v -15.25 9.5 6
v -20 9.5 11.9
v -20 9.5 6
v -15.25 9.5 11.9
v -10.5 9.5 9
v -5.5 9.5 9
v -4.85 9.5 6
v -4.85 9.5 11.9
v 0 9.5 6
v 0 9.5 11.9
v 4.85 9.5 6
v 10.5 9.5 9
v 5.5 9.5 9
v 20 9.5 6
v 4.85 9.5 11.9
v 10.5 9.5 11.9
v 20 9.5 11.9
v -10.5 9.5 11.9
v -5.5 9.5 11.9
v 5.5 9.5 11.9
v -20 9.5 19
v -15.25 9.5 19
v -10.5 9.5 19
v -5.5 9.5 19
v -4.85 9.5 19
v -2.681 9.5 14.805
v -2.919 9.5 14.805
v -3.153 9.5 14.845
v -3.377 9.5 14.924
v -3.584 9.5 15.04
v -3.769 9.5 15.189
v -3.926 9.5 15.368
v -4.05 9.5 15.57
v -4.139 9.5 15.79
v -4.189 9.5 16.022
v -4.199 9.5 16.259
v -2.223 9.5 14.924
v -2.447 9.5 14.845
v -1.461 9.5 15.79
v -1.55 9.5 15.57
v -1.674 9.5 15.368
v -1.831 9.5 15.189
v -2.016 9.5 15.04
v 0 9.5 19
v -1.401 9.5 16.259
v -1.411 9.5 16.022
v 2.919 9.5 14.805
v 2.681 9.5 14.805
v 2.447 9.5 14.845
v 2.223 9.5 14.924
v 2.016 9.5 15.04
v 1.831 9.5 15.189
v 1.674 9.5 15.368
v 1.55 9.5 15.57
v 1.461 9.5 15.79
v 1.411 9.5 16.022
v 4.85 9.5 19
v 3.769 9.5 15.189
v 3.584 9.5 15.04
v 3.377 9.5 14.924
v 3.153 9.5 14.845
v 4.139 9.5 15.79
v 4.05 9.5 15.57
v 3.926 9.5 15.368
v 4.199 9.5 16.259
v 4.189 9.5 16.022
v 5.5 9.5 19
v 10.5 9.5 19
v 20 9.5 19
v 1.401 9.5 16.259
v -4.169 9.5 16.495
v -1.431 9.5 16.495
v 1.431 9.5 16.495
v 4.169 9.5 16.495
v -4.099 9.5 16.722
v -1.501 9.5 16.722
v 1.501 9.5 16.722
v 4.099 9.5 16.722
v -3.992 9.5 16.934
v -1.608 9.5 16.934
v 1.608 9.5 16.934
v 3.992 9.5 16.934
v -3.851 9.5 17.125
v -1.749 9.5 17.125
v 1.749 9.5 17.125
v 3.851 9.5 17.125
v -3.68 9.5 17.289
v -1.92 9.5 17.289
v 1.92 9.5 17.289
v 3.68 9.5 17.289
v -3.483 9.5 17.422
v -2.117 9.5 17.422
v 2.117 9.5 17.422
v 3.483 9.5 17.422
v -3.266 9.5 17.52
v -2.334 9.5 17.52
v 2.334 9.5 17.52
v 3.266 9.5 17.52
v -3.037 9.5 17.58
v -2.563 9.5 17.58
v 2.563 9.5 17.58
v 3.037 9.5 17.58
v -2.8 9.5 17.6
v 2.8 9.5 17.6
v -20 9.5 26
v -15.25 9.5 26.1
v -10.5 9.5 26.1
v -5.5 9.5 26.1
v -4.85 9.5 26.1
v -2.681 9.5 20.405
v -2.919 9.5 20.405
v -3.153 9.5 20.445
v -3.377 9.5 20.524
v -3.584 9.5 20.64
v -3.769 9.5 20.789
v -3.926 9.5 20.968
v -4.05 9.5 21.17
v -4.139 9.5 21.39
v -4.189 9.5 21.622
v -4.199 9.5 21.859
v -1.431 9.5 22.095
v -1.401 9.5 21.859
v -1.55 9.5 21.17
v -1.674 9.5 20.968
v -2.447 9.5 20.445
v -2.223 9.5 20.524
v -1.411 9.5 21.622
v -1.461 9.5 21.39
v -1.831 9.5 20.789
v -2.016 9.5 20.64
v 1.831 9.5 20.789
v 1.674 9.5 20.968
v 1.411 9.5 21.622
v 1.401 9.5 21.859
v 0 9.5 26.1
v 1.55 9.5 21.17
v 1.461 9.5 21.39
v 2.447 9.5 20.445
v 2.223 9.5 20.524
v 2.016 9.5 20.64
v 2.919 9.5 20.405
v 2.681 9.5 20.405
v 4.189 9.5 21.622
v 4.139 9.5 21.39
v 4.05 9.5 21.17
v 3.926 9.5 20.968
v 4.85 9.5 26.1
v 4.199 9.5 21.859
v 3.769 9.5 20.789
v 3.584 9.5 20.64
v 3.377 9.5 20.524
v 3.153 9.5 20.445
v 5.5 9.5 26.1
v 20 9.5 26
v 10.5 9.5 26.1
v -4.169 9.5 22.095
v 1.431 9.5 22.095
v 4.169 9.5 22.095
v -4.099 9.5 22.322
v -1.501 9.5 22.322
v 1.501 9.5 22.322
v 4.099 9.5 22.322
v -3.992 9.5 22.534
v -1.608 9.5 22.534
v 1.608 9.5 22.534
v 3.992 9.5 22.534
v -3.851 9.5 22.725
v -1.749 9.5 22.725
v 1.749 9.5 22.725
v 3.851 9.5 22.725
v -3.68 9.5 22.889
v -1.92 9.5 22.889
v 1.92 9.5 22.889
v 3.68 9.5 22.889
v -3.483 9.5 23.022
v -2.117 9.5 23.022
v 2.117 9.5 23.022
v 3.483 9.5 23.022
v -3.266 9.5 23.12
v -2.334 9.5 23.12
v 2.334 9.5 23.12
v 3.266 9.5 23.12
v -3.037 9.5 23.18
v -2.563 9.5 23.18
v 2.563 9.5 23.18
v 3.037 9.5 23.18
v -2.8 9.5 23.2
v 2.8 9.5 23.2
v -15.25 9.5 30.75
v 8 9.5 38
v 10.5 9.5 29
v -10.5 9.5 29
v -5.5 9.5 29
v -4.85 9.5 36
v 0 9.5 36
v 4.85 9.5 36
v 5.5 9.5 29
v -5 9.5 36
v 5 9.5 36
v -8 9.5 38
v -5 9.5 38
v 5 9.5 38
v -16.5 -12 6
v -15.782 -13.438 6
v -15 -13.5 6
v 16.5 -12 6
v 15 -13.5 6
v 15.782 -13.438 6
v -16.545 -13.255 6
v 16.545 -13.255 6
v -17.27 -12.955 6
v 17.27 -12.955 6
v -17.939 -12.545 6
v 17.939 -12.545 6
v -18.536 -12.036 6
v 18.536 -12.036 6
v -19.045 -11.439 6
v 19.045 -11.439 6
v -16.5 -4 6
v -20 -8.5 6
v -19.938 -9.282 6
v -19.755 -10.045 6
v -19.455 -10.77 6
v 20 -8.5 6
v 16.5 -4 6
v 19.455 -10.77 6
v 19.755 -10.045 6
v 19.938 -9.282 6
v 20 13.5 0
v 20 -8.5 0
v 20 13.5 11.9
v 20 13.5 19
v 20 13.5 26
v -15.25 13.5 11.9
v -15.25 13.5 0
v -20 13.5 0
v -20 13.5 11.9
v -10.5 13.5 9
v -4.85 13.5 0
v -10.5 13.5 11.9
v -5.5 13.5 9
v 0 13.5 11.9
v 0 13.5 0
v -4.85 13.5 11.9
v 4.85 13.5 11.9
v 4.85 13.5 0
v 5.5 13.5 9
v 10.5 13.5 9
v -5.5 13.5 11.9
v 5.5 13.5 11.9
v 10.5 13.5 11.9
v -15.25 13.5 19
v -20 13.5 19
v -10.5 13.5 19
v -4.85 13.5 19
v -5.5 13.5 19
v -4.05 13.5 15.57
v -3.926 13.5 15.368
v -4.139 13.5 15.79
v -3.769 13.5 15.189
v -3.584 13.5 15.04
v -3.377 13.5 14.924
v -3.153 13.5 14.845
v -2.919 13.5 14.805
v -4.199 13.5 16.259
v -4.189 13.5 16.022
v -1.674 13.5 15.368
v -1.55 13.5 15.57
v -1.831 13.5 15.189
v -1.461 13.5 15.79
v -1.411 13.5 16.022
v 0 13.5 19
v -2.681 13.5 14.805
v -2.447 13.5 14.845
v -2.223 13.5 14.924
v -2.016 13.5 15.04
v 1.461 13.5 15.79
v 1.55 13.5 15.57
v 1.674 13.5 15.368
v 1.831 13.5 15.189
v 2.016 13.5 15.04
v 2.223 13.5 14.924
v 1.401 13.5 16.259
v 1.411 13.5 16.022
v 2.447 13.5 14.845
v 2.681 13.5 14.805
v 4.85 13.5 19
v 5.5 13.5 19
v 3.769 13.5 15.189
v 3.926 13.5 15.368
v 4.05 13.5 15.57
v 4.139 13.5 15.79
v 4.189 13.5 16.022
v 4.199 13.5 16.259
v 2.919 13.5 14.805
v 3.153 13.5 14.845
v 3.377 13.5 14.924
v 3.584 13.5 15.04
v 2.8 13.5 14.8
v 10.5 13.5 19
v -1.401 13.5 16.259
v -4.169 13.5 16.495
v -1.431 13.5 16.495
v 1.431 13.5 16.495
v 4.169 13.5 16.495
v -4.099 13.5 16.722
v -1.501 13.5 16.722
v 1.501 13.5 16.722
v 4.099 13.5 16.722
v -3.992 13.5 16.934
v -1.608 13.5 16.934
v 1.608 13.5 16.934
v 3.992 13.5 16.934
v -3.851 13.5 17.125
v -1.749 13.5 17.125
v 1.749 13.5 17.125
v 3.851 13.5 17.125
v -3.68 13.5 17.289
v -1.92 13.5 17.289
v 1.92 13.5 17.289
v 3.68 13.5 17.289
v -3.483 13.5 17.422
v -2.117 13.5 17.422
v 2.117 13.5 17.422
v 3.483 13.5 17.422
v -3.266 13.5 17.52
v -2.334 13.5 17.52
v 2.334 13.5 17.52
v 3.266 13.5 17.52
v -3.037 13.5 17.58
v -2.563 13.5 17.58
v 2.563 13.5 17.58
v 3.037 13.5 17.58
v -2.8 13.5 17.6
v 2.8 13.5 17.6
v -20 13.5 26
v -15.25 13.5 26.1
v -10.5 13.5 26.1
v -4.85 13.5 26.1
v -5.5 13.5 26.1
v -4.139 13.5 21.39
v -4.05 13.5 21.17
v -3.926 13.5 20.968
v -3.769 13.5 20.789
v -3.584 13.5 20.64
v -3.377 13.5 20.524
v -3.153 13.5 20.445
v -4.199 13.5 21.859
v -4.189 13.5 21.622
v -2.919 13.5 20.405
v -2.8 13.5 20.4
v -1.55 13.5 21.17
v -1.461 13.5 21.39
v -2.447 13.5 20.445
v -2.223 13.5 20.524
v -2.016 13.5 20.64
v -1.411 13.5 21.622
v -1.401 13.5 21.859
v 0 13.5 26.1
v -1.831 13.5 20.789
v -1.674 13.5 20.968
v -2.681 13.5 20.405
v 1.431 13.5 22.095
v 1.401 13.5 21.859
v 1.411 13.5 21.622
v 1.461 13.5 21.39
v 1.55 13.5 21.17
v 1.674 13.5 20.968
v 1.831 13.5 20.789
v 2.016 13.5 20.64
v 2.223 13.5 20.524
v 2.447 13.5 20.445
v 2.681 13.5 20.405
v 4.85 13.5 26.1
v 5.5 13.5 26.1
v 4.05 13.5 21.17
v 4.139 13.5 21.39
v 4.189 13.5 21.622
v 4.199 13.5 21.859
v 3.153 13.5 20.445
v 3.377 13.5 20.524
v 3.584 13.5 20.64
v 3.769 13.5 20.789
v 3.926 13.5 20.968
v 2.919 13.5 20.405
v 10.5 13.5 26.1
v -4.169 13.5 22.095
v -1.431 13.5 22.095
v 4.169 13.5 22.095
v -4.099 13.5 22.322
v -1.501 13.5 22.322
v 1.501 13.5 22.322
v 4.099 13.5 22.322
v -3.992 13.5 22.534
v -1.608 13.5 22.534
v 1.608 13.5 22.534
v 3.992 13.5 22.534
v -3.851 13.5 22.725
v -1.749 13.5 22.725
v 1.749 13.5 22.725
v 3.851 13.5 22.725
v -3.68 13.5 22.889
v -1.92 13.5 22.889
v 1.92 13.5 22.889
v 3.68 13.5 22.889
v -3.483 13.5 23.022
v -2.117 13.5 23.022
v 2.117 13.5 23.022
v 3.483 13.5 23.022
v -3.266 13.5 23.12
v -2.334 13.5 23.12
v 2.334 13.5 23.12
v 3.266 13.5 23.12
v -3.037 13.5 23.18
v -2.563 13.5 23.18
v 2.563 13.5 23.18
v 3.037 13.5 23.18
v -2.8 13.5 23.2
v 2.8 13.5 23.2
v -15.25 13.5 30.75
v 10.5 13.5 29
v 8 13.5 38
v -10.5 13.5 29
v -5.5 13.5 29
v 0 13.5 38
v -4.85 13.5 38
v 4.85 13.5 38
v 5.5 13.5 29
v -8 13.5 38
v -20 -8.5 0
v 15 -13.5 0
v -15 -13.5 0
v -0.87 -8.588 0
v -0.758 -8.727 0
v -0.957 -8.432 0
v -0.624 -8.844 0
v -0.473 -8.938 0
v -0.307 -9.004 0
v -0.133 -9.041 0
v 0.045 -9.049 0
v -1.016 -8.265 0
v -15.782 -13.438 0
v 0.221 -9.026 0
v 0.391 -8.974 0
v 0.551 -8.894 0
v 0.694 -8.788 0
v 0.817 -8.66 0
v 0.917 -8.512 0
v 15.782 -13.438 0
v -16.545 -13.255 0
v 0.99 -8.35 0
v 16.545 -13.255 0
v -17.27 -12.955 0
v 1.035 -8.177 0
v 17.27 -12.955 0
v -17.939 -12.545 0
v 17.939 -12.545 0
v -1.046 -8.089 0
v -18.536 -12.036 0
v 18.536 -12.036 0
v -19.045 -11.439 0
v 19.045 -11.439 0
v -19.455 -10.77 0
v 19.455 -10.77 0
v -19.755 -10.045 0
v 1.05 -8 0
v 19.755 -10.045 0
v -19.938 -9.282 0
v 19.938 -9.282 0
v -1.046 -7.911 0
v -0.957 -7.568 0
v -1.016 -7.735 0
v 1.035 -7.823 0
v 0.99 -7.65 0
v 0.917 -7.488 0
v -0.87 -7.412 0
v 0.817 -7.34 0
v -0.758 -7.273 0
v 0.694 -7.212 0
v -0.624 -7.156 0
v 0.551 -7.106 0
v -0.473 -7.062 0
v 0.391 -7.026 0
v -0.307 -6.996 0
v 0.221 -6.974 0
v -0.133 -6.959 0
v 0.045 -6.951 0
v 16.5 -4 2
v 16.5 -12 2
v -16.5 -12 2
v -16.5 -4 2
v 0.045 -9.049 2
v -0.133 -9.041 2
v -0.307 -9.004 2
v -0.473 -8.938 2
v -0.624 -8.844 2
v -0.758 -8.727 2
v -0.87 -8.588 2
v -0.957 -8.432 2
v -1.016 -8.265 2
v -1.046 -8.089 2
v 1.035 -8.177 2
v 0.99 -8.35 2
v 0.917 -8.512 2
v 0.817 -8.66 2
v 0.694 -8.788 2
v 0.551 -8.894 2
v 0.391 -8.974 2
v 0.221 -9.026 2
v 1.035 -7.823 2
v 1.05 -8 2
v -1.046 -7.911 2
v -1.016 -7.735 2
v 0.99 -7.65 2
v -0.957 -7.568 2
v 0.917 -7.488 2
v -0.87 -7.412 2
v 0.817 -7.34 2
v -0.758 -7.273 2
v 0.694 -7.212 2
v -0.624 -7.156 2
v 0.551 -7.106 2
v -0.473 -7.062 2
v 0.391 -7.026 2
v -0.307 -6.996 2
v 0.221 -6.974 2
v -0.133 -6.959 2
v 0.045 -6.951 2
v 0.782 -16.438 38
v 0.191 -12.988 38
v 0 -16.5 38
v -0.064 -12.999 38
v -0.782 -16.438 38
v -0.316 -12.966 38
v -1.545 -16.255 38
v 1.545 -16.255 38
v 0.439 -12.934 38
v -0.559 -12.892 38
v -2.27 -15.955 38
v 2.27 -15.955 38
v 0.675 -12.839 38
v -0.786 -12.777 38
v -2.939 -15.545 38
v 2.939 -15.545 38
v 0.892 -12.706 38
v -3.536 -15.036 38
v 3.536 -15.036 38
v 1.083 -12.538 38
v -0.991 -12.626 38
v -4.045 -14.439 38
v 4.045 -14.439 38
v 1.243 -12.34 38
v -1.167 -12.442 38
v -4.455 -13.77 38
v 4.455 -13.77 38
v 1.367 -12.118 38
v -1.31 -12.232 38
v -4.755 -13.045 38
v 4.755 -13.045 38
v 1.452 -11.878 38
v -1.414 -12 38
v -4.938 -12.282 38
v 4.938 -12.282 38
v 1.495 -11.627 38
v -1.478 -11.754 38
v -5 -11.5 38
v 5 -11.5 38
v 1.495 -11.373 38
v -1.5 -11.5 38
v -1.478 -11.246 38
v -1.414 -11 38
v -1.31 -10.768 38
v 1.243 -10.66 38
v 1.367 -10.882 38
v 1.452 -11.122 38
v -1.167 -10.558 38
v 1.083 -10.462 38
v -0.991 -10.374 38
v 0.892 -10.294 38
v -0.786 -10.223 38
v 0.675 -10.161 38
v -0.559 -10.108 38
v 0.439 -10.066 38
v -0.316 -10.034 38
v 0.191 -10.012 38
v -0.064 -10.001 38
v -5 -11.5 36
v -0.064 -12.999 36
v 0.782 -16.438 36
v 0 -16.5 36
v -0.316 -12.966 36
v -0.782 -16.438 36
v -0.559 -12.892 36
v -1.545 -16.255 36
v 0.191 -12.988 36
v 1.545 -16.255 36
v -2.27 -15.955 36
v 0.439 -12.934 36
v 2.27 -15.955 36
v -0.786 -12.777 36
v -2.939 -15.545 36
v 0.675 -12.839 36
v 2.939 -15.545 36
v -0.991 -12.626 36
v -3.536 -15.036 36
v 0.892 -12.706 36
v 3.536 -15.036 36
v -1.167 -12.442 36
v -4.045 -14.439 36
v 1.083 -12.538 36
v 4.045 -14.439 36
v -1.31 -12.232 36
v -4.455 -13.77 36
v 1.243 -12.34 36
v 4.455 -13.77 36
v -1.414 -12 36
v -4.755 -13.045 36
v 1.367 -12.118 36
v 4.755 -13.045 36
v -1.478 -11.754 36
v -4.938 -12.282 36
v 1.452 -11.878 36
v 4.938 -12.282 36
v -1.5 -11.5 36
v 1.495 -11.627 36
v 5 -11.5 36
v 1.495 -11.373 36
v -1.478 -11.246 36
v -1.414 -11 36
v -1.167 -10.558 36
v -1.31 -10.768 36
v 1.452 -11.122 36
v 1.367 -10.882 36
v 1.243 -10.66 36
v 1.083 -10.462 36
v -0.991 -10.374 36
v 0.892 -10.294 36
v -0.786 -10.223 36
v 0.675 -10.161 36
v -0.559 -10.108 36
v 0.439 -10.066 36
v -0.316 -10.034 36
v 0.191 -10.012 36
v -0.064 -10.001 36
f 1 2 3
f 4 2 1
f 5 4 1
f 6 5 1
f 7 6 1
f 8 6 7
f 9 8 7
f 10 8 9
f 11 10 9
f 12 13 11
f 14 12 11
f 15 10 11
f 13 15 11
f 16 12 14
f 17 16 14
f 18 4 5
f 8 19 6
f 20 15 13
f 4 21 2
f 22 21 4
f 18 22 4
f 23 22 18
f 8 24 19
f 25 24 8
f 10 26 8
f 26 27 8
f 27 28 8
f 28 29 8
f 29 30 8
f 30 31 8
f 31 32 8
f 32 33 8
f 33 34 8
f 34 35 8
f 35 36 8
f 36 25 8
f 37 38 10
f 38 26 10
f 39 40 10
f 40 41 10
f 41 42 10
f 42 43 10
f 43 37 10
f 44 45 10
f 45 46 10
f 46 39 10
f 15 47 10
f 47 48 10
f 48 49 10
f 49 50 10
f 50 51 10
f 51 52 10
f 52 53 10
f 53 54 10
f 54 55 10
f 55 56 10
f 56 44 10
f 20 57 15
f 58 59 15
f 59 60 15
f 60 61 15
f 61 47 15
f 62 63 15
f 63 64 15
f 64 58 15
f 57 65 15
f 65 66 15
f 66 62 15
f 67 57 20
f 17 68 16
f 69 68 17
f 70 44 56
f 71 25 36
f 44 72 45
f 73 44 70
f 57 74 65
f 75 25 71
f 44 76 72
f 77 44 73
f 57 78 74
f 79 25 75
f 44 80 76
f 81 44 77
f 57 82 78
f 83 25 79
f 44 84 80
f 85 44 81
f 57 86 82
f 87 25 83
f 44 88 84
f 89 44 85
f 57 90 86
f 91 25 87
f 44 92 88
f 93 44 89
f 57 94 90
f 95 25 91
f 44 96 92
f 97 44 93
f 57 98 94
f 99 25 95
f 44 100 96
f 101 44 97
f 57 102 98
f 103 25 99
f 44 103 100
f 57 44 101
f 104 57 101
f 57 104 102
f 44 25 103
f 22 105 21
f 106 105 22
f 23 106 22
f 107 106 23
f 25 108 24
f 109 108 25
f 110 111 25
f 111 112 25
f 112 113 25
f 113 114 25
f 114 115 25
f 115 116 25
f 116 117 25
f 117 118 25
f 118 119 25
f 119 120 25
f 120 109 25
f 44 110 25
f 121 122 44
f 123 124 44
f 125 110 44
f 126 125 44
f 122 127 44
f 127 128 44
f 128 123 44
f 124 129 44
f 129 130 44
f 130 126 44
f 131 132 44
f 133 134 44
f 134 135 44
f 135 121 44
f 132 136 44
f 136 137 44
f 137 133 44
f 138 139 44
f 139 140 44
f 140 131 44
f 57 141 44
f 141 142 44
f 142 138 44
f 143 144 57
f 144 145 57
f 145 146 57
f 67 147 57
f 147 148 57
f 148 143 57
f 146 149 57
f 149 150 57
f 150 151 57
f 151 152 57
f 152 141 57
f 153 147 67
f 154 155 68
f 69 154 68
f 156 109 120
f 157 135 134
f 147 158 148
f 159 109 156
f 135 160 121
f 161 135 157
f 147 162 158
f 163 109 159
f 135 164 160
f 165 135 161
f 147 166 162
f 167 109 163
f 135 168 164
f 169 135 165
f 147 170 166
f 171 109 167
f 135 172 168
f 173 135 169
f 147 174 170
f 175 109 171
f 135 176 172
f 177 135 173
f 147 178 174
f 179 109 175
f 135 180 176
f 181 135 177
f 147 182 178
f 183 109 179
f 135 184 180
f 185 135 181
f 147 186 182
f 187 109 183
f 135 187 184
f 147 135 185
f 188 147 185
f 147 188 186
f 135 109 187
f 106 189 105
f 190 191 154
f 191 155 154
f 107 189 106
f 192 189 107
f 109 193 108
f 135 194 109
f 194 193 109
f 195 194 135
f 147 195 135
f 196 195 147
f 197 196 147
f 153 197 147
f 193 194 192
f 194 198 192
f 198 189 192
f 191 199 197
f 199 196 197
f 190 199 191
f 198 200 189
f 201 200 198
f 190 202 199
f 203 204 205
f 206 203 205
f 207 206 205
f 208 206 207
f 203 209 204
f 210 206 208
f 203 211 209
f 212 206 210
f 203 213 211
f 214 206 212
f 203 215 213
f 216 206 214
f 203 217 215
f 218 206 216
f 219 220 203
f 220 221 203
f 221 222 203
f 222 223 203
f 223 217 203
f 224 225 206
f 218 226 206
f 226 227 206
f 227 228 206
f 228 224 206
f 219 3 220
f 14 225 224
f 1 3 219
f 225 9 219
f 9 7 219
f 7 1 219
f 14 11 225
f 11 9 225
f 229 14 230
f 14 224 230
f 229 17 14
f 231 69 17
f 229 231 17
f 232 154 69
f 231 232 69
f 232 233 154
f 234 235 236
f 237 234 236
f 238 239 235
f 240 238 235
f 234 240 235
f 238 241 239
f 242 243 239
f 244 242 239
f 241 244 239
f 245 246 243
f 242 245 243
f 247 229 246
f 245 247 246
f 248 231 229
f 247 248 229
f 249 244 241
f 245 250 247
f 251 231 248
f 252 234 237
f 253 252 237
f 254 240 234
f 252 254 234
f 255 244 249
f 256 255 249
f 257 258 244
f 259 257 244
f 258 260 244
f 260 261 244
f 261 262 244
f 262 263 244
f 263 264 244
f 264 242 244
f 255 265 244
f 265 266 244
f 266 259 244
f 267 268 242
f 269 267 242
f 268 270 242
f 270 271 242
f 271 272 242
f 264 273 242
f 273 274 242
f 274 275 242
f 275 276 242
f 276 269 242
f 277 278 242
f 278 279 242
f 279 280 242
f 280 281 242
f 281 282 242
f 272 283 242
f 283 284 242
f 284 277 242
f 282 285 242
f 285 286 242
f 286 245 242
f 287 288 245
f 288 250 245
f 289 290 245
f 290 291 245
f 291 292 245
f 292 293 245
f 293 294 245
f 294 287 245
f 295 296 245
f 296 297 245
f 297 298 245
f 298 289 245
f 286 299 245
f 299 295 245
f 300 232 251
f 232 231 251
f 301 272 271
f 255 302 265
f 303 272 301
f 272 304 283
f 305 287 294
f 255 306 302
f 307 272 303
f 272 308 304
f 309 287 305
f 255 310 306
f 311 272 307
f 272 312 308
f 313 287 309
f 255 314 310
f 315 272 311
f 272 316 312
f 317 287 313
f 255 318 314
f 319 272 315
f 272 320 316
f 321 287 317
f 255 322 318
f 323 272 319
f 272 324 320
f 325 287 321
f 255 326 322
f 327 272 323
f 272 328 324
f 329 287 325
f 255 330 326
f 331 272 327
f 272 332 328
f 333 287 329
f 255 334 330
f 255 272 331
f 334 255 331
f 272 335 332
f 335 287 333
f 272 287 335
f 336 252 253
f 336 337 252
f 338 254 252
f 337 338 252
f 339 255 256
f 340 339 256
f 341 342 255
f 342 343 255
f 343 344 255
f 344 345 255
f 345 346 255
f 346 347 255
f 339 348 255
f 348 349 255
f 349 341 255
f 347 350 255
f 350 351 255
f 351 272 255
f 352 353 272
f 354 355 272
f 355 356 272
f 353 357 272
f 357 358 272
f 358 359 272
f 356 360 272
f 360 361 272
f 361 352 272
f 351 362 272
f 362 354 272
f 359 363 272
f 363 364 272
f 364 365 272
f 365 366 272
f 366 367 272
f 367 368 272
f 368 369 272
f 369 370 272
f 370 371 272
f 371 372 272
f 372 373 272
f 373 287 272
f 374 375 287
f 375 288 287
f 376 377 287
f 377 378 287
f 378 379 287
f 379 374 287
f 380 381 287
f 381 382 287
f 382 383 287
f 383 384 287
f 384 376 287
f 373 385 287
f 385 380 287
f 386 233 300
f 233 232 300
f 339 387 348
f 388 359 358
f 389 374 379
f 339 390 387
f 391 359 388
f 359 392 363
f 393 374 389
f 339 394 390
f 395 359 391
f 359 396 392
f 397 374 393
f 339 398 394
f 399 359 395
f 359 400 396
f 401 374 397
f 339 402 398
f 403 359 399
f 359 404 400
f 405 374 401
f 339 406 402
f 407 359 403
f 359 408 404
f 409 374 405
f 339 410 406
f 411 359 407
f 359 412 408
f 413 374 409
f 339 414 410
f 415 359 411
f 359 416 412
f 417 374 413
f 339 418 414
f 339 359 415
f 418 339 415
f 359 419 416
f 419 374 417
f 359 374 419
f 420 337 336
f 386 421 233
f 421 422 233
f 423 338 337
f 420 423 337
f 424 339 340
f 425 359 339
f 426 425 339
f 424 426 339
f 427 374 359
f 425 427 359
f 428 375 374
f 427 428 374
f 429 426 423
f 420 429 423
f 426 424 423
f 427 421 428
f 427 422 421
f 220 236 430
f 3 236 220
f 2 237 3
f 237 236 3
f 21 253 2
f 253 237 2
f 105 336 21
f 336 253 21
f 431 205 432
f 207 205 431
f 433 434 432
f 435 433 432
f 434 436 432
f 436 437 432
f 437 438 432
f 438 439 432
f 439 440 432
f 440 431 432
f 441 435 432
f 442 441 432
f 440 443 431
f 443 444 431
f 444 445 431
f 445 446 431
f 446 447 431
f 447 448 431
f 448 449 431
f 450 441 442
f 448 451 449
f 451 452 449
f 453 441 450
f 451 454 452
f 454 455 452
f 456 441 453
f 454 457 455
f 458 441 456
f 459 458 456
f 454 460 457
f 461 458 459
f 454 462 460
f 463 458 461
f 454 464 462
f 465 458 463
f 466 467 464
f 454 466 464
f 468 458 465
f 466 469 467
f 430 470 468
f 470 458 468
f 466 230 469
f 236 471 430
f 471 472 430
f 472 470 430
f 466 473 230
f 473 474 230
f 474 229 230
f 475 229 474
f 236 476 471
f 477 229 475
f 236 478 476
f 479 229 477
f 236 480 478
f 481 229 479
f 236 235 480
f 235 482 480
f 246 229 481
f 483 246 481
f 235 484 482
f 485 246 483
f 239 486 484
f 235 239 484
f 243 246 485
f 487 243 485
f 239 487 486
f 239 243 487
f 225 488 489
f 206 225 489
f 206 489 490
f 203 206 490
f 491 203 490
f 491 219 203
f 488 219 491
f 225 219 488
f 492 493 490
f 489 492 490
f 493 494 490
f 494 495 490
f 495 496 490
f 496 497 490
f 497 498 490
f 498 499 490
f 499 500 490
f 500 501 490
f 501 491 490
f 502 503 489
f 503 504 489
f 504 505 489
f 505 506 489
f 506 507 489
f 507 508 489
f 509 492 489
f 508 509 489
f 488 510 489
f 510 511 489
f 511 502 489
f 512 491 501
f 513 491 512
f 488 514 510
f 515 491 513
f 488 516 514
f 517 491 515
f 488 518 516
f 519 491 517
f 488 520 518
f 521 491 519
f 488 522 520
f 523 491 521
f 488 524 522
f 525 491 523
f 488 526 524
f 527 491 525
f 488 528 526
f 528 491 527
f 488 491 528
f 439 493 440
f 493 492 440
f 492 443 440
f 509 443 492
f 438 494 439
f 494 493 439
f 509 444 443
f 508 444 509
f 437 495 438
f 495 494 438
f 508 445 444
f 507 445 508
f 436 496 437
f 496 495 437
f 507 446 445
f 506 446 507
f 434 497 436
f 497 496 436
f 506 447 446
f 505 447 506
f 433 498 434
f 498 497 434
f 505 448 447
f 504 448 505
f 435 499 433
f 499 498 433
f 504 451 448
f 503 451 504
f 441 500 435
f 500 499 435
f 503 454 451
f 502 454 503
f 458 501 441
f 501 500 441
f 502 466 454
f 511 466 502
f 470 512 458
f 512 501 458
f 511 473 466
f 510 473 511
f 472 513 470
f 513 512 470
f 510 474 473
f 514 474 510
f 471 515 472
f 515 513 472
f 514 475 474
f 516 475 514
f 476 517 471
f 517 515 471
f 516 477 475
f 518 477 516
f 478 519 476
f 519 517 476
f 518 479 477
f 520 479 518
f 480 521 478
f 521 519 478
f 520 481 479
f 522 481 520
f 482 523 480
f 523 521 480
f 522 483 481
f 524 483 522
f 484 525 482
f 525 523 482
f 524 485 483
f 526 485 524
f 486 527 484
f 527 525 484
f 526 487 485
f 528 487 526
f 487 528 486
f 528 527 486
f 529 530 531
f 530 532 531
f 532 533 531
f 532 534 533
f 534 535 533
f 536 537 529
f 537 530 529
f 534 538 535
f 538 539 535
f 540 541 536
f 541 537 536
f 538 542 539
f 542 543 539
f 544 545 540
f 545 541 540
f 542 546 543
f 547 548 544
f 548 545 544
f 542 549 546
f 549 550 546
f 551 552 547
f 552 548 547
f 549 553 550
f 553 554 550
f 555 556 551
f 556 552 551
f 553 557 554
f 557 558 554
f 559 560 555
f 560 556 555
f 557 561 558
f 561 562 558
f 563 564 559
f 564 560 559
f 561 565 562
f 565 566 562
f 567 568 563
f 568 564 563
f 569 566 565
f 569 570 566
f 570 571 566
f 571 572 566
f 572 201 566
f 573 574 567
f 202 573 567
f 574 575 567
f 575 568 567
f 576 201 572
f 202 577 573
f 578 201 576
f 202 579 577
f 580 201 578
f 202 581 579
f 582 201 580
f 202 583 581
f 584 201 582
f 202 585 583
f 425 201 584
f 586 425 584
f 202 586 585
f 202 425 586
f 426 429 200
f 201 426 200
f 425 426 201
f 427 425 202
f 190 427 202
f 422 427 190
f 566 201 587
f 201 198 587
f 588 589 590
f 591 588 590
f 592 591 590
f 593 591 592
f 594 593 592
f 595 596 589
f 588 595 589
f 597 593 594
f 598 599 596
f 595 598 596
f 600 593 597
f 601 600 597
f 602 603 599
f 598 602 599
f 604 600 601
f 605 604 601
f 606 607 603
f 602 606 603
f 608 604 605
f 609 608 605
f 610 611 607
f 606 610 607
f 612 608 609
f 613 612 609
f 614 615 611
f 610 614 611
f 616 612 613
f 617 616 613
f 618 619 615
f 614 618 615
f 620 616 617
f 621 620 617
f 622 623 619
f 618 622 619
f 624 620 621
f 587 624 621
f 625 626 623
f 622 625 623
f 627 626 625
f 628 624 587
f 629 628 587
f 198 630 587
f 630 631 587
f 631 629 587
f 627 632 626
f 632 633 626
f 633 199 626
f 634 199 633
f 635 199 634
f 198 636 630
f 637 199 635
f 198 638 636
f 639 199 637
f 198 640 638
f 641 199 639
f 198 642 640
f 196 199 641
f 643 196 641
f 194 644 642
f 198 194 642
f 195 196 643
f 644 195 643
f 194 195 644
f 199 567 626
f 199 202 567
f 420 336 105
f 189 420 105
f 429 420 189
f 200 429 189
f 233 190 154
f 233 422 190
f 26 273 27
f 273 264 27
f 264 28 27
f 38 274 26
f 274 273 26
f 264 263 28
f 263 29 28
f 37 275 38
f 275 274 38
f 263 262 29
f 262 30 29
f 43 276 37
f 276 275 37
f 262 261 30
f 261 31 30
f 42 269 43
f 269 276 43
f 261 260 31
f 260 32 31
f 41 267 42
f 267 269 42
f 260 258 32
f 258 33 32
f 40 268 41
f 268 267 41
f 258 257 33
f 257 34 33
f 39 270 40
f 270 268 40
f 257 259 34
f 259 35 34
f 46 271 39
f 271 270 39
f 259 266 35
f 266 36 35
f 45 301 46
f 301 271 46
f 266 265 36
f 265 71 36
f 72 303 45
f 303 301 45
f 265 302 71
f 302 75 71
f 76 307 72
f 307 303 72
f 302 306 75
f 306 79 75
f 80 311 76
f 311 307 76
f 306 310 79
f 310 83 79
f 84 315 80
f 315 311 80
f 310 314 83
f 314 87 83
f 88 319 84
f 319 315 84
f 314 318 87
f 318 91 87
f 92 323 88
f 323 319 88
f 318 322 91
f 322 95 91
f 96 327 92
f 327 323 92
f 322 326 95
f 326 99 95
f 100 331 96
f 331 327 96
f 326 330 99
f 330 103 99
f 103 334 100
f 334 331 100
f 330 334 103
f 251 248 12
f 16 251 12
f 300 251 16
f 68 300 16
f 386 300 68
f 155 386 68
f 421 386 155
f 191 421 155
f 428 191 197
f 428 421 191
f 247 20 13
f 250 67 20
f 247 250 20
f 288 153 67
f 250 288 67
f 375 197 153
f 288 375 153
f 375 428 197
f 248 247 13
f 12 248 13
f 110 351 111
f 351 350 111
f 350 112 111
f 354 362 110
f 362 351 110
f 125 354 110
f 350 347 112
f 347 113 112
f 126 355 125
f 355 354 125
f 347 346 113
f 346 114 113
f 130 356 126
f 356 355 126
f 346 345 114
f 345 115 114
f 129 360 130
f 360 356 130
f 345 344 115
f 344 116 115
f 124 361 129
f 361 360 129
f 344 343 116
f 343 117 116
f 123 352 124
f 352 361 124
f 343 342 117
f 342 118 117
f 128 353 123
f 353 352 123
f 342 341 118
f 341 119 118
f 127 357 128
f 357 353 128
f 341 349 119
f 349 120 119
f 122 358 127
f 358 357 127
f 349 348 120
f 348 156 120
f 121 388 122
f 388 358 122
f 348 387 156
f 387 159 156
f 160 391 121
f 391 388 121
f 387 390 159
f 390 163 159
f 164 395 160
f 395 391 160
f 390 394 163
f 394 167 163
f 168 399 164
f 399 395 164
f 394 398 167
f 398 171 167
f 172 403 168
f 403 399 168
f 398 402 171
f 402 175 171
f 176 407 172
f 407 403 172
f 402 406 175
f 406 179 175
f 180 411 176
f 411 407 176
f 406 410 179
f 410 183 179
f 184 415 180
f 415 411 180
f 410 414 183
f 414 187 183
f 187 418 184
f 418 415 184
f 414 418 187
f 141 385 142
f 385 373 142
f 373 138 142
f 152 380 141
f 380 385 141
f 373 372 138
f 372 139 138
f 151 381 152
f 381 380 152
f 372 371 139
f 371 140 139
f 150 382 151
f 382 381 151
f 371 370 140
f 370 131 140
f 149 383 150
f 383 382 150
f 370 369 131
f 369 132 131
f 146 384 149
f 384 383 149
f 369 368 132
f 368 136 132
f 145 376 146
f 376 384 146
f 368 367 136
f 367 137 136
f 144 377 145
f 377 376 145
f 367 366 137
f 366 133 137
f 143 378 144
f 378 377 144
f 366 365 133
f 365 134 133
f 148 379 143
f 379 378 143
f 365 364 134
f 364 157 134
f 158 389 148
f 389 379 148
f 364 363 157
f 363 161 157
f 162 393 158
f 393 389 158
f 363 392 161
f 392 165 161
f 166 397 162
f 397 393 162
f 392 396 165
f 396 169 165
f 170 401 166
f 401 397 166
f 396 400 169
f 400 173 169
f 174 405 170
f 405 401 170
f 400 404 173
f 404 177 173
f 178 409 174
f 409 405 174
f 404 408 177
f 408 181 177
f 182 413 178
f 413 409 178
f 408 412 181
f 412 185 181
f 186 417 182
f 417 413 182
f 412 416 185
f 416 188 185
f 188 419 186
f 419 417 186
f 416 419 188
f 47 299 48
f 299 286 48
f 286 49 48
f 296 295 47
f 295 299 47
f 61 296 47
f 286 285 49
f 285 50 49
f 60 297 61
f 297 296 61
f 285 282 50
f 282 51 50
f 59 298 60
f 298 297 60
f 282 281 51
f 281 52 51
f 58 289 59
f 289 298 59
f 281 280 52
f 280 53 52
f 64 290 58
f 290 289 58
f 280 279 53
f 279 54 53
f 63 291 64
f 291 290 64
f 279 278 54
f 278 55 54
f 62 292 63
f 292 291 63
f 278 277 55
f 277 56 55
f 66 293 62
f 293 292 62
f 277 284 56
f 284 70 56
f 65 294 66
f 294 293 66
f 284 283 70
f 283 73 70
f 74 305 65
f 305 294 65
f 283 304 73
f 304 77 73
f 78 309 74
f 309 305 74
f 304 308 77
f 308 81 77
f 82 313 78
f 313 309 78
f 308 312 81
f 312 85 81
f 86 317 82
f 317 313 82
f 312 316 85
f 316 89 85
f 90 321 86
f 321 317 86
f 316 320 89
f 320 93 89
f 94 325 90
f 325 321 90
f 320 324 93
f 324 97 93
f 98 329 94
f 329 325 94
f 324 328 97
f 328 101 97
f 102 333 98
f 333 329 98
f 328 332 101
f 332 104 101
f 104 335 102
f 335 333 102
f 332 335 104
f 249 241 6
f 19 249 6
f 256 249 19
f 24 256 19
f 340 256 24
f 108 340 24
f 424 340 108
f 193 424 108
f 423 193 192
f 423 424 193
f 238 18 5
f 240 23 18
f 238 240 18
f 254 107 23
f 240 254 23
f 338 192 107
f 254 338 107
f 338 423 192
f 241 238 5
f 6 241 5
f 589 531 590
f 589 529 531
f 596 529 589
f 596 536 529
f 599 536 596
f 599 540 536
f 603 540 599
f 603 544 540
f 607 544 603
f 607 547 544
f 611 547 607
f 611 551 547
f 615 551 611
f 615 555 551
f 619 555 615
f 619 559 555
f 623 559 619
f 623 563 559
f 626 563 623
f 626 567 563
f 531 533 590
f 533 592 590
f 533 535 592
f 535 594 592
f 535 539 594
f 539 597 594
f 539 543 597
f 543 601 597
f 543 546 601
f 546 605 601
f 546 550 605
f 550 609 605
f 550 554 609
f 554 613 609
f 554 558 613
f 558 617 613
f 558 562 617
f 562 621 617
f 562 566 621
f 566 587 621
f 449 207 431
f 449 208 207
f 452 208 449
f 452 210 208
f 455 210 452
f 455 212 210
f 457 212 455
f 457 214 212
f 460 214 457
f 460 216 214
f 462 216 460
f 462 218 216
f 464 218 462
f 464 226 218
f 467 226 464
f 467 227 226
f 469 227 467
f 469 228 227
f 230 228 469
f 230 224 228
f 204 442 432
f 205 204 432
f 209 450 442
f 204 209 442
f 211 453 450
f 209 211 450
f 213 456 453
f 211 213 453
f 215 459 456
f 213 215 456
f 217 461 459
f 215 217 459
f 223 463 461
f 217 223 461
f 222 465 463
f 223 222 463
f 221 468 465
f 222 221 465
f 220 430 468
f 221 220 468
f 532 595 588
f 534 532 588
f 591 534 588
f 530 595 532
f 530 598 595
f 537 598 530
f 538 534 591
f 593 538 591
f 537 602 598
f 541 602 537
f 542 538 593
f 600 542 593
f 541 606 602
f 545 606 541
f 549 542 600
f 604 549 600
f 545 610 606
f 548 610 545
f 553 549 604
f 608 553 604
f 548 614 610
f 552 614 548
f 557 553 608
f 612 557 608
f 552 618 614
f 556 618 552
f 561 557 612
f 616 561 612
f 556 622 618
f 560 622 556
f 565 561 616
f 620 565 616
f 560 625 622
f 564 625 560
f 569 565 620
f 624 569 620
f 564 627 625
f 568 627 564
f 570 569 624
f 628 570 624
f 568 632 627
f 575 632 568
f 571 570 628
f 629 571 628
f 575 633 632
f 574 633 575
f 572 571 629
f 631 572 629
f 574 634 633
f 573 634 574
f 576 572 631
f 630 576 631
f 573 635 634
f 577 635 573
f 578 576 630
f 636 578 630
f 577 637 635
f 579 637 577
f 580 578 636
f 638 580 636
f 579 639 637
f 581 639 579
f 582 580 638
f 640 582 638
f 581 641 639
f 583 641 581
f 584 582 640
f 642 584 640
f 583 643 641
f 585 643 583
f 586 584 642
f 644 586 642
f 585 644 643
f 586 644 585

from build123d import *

# Parameters (mm, degrees)
SCHIZZO3_W                   = 40
SCHIZZO3_H                   = 27
ESTRUSIONE_ESTRUSIONE1_DEPTH = 6
SCHIZZO4_W                   = 33
SCHIZZO4_H                   = 8
TAGLIO_ESTRUSIONE1_DEPTH     = 4
SCHIZZO5_R                   = 1.05
TAGLIO_ESTRUSIONE2_DEPTH     = 25.459149617
SCHIZZO6_W                   = 40
SCHIZZO6_H                   = 4
ESTRUSIONE_ESTRUSIONE2_DEPTH = 32
SCHIZZO7_W                   = 10
SCHIZZO7_H                   = 2
ESTRUSIONE_ESTRUSIONE3_DEPTH = 26
SCHIZZO8_R                   = 1.4
SCHIZZO8_W                   = 5
SCHIZZO8_H                   = 20
TAGLIO_ESTRUSIONE3_DEPTH     = 53.383203415
RACCORDO1_R                  = 5
TAGLIO_ESTRUSIONE4_REACH     = 46.365
SCHIZZO9_R                   = 1.5


with BuildPart() as part:
    # Schizzo3 → Estrusione-Estrusione1 (new body)
    with BuildSketch(Plane.XY):
        Rectangle(SCHIZZO3_W, SCHIZZO3_H)
    extrude(amount=ESTRUSIONE_ESTRUSIONE1_DEPTH)

    # Schizzo4 → Taglio-Estrusione1 (cut)
    with BuildSketch(Plane.XY.offset(6)):
        with Locations((0, -8)):
            Rectangle(SCHIZZO4_W, SCHIZZO4_H)
    extrude(amount=-TAGLIO_ESTRUSIONE1_DEPTH, mode=Mode.SUBTRACT)

    # Schizzo5 → Taglio-Estrusione2 (cut, through all)
    with BuildSketch(Plane.XY.offset(2)):
        with Locations((0, -8)):
            Circle(SCHIZZO5_R)
    extrude(amount=-TAGLIO_ESTRUSIONE2_DEPTH, mode=Mode.SUBTRACT)

    # Schizzo6 → Estrusione-Estrusione2 (add)
    with BuildSketch(Plane.XY.offset(6)):
        with Locations((0, 11.5)):
            Rectangle(SCHIZZO6_W, SCHIZZO6_H)
    extrude(amount=ESTRUSIONE_ESTRUSIONE2_DEPTH)

    # Schizzo7 → Estrusione-Estrusione3 (add)
    with BuildSketch(Plane.XZ.offset(-9.5)):
        with Locations((0, 37)):
            Rectangle(SCHIZZO7_W, SCHIZZO7_H)
    extrude(amount=ESTRUSIONE_ESTRUSIONE3_DEPTH)

    # Schizzo8 → Taglio-Estrusione3 (cut, through all)
    with BuildSketch(Plane(origin=(0, 13.5, 0), x_dir=(1, 0, 0), z_dir=(0, 1, 0))):
        with Locations(Location((-2.8, -16.2, 0), (0, 0, 270))):
            Circle(SCHIZZO8_R)
        with Locations(Location((-2.8, -21.8, 0), (0, 0, 270))):
            Circle(SCHIZZO8_R)
        with Locations(Location((2.8, -21.8, 0), (0, 0, 270))):
            Circle(SCHIZZO8_R)
        with Locations(Location((2.8, -16.2, 0), (0, 0, 270))):
            Circle(SCHIZZO8_R)
        with Locations((8, -19)):
            Rectangle(SCHIZZO8_W, SCHIZZO8_H)
        with Locations((-8, -19)):
            Rectangle(SCHIZZO8_W, SCHIZZO8_H)
        Polygon((-20, -26), (-8, -38), (-20, -38), align=None)
        Polygon((8, -38), (20, -38), (20, -26), align=None)
    extrude(amount=-TAGLIO_ESTRUSIONE3_DEPTH, mode=Mode.SUBTRACT)

    # Raccordo1
    raccordo1_edges = [part.edges().sort_by_distance(p)[0] for p in [
        (-5, -16.5, 37),
        (5, -16.5, 37),
        (20, -13.5, 3),
        (-20, -13.5, 3),
    ]]
    fillet(raccordo1_edges, radius=RACCORDO1_R - 0.0001)  # a hair under: the kernel refuses the full size

    # Schizzo9 → Taglio-Estrusione4 (cut, up to next)
    with BuildSketch(Plane(origin=(0, 0, 36), x_dir=(-1, 0, 0), z_dir=(0, 0, -1)), mode=Mode.PRIVATE) as taglio_estrusione4_sk1:
        with Locations((0, -11.5)):
            Circle(SCHIZZO9_R)
    taglio_estrusione4_tool1 = extrude(taglio_estrusione4_sk1.sketch, amount=-TAGLIO_ESTRUSIONE4_REACH, mode=Mode.PRIVATE) & part.part
    add(taglio_estrusione4_tool1.solids().sort_by_distance((0, -11.5, 36))[0], mode=Mode.SUBTRACT)


solid = part.part
